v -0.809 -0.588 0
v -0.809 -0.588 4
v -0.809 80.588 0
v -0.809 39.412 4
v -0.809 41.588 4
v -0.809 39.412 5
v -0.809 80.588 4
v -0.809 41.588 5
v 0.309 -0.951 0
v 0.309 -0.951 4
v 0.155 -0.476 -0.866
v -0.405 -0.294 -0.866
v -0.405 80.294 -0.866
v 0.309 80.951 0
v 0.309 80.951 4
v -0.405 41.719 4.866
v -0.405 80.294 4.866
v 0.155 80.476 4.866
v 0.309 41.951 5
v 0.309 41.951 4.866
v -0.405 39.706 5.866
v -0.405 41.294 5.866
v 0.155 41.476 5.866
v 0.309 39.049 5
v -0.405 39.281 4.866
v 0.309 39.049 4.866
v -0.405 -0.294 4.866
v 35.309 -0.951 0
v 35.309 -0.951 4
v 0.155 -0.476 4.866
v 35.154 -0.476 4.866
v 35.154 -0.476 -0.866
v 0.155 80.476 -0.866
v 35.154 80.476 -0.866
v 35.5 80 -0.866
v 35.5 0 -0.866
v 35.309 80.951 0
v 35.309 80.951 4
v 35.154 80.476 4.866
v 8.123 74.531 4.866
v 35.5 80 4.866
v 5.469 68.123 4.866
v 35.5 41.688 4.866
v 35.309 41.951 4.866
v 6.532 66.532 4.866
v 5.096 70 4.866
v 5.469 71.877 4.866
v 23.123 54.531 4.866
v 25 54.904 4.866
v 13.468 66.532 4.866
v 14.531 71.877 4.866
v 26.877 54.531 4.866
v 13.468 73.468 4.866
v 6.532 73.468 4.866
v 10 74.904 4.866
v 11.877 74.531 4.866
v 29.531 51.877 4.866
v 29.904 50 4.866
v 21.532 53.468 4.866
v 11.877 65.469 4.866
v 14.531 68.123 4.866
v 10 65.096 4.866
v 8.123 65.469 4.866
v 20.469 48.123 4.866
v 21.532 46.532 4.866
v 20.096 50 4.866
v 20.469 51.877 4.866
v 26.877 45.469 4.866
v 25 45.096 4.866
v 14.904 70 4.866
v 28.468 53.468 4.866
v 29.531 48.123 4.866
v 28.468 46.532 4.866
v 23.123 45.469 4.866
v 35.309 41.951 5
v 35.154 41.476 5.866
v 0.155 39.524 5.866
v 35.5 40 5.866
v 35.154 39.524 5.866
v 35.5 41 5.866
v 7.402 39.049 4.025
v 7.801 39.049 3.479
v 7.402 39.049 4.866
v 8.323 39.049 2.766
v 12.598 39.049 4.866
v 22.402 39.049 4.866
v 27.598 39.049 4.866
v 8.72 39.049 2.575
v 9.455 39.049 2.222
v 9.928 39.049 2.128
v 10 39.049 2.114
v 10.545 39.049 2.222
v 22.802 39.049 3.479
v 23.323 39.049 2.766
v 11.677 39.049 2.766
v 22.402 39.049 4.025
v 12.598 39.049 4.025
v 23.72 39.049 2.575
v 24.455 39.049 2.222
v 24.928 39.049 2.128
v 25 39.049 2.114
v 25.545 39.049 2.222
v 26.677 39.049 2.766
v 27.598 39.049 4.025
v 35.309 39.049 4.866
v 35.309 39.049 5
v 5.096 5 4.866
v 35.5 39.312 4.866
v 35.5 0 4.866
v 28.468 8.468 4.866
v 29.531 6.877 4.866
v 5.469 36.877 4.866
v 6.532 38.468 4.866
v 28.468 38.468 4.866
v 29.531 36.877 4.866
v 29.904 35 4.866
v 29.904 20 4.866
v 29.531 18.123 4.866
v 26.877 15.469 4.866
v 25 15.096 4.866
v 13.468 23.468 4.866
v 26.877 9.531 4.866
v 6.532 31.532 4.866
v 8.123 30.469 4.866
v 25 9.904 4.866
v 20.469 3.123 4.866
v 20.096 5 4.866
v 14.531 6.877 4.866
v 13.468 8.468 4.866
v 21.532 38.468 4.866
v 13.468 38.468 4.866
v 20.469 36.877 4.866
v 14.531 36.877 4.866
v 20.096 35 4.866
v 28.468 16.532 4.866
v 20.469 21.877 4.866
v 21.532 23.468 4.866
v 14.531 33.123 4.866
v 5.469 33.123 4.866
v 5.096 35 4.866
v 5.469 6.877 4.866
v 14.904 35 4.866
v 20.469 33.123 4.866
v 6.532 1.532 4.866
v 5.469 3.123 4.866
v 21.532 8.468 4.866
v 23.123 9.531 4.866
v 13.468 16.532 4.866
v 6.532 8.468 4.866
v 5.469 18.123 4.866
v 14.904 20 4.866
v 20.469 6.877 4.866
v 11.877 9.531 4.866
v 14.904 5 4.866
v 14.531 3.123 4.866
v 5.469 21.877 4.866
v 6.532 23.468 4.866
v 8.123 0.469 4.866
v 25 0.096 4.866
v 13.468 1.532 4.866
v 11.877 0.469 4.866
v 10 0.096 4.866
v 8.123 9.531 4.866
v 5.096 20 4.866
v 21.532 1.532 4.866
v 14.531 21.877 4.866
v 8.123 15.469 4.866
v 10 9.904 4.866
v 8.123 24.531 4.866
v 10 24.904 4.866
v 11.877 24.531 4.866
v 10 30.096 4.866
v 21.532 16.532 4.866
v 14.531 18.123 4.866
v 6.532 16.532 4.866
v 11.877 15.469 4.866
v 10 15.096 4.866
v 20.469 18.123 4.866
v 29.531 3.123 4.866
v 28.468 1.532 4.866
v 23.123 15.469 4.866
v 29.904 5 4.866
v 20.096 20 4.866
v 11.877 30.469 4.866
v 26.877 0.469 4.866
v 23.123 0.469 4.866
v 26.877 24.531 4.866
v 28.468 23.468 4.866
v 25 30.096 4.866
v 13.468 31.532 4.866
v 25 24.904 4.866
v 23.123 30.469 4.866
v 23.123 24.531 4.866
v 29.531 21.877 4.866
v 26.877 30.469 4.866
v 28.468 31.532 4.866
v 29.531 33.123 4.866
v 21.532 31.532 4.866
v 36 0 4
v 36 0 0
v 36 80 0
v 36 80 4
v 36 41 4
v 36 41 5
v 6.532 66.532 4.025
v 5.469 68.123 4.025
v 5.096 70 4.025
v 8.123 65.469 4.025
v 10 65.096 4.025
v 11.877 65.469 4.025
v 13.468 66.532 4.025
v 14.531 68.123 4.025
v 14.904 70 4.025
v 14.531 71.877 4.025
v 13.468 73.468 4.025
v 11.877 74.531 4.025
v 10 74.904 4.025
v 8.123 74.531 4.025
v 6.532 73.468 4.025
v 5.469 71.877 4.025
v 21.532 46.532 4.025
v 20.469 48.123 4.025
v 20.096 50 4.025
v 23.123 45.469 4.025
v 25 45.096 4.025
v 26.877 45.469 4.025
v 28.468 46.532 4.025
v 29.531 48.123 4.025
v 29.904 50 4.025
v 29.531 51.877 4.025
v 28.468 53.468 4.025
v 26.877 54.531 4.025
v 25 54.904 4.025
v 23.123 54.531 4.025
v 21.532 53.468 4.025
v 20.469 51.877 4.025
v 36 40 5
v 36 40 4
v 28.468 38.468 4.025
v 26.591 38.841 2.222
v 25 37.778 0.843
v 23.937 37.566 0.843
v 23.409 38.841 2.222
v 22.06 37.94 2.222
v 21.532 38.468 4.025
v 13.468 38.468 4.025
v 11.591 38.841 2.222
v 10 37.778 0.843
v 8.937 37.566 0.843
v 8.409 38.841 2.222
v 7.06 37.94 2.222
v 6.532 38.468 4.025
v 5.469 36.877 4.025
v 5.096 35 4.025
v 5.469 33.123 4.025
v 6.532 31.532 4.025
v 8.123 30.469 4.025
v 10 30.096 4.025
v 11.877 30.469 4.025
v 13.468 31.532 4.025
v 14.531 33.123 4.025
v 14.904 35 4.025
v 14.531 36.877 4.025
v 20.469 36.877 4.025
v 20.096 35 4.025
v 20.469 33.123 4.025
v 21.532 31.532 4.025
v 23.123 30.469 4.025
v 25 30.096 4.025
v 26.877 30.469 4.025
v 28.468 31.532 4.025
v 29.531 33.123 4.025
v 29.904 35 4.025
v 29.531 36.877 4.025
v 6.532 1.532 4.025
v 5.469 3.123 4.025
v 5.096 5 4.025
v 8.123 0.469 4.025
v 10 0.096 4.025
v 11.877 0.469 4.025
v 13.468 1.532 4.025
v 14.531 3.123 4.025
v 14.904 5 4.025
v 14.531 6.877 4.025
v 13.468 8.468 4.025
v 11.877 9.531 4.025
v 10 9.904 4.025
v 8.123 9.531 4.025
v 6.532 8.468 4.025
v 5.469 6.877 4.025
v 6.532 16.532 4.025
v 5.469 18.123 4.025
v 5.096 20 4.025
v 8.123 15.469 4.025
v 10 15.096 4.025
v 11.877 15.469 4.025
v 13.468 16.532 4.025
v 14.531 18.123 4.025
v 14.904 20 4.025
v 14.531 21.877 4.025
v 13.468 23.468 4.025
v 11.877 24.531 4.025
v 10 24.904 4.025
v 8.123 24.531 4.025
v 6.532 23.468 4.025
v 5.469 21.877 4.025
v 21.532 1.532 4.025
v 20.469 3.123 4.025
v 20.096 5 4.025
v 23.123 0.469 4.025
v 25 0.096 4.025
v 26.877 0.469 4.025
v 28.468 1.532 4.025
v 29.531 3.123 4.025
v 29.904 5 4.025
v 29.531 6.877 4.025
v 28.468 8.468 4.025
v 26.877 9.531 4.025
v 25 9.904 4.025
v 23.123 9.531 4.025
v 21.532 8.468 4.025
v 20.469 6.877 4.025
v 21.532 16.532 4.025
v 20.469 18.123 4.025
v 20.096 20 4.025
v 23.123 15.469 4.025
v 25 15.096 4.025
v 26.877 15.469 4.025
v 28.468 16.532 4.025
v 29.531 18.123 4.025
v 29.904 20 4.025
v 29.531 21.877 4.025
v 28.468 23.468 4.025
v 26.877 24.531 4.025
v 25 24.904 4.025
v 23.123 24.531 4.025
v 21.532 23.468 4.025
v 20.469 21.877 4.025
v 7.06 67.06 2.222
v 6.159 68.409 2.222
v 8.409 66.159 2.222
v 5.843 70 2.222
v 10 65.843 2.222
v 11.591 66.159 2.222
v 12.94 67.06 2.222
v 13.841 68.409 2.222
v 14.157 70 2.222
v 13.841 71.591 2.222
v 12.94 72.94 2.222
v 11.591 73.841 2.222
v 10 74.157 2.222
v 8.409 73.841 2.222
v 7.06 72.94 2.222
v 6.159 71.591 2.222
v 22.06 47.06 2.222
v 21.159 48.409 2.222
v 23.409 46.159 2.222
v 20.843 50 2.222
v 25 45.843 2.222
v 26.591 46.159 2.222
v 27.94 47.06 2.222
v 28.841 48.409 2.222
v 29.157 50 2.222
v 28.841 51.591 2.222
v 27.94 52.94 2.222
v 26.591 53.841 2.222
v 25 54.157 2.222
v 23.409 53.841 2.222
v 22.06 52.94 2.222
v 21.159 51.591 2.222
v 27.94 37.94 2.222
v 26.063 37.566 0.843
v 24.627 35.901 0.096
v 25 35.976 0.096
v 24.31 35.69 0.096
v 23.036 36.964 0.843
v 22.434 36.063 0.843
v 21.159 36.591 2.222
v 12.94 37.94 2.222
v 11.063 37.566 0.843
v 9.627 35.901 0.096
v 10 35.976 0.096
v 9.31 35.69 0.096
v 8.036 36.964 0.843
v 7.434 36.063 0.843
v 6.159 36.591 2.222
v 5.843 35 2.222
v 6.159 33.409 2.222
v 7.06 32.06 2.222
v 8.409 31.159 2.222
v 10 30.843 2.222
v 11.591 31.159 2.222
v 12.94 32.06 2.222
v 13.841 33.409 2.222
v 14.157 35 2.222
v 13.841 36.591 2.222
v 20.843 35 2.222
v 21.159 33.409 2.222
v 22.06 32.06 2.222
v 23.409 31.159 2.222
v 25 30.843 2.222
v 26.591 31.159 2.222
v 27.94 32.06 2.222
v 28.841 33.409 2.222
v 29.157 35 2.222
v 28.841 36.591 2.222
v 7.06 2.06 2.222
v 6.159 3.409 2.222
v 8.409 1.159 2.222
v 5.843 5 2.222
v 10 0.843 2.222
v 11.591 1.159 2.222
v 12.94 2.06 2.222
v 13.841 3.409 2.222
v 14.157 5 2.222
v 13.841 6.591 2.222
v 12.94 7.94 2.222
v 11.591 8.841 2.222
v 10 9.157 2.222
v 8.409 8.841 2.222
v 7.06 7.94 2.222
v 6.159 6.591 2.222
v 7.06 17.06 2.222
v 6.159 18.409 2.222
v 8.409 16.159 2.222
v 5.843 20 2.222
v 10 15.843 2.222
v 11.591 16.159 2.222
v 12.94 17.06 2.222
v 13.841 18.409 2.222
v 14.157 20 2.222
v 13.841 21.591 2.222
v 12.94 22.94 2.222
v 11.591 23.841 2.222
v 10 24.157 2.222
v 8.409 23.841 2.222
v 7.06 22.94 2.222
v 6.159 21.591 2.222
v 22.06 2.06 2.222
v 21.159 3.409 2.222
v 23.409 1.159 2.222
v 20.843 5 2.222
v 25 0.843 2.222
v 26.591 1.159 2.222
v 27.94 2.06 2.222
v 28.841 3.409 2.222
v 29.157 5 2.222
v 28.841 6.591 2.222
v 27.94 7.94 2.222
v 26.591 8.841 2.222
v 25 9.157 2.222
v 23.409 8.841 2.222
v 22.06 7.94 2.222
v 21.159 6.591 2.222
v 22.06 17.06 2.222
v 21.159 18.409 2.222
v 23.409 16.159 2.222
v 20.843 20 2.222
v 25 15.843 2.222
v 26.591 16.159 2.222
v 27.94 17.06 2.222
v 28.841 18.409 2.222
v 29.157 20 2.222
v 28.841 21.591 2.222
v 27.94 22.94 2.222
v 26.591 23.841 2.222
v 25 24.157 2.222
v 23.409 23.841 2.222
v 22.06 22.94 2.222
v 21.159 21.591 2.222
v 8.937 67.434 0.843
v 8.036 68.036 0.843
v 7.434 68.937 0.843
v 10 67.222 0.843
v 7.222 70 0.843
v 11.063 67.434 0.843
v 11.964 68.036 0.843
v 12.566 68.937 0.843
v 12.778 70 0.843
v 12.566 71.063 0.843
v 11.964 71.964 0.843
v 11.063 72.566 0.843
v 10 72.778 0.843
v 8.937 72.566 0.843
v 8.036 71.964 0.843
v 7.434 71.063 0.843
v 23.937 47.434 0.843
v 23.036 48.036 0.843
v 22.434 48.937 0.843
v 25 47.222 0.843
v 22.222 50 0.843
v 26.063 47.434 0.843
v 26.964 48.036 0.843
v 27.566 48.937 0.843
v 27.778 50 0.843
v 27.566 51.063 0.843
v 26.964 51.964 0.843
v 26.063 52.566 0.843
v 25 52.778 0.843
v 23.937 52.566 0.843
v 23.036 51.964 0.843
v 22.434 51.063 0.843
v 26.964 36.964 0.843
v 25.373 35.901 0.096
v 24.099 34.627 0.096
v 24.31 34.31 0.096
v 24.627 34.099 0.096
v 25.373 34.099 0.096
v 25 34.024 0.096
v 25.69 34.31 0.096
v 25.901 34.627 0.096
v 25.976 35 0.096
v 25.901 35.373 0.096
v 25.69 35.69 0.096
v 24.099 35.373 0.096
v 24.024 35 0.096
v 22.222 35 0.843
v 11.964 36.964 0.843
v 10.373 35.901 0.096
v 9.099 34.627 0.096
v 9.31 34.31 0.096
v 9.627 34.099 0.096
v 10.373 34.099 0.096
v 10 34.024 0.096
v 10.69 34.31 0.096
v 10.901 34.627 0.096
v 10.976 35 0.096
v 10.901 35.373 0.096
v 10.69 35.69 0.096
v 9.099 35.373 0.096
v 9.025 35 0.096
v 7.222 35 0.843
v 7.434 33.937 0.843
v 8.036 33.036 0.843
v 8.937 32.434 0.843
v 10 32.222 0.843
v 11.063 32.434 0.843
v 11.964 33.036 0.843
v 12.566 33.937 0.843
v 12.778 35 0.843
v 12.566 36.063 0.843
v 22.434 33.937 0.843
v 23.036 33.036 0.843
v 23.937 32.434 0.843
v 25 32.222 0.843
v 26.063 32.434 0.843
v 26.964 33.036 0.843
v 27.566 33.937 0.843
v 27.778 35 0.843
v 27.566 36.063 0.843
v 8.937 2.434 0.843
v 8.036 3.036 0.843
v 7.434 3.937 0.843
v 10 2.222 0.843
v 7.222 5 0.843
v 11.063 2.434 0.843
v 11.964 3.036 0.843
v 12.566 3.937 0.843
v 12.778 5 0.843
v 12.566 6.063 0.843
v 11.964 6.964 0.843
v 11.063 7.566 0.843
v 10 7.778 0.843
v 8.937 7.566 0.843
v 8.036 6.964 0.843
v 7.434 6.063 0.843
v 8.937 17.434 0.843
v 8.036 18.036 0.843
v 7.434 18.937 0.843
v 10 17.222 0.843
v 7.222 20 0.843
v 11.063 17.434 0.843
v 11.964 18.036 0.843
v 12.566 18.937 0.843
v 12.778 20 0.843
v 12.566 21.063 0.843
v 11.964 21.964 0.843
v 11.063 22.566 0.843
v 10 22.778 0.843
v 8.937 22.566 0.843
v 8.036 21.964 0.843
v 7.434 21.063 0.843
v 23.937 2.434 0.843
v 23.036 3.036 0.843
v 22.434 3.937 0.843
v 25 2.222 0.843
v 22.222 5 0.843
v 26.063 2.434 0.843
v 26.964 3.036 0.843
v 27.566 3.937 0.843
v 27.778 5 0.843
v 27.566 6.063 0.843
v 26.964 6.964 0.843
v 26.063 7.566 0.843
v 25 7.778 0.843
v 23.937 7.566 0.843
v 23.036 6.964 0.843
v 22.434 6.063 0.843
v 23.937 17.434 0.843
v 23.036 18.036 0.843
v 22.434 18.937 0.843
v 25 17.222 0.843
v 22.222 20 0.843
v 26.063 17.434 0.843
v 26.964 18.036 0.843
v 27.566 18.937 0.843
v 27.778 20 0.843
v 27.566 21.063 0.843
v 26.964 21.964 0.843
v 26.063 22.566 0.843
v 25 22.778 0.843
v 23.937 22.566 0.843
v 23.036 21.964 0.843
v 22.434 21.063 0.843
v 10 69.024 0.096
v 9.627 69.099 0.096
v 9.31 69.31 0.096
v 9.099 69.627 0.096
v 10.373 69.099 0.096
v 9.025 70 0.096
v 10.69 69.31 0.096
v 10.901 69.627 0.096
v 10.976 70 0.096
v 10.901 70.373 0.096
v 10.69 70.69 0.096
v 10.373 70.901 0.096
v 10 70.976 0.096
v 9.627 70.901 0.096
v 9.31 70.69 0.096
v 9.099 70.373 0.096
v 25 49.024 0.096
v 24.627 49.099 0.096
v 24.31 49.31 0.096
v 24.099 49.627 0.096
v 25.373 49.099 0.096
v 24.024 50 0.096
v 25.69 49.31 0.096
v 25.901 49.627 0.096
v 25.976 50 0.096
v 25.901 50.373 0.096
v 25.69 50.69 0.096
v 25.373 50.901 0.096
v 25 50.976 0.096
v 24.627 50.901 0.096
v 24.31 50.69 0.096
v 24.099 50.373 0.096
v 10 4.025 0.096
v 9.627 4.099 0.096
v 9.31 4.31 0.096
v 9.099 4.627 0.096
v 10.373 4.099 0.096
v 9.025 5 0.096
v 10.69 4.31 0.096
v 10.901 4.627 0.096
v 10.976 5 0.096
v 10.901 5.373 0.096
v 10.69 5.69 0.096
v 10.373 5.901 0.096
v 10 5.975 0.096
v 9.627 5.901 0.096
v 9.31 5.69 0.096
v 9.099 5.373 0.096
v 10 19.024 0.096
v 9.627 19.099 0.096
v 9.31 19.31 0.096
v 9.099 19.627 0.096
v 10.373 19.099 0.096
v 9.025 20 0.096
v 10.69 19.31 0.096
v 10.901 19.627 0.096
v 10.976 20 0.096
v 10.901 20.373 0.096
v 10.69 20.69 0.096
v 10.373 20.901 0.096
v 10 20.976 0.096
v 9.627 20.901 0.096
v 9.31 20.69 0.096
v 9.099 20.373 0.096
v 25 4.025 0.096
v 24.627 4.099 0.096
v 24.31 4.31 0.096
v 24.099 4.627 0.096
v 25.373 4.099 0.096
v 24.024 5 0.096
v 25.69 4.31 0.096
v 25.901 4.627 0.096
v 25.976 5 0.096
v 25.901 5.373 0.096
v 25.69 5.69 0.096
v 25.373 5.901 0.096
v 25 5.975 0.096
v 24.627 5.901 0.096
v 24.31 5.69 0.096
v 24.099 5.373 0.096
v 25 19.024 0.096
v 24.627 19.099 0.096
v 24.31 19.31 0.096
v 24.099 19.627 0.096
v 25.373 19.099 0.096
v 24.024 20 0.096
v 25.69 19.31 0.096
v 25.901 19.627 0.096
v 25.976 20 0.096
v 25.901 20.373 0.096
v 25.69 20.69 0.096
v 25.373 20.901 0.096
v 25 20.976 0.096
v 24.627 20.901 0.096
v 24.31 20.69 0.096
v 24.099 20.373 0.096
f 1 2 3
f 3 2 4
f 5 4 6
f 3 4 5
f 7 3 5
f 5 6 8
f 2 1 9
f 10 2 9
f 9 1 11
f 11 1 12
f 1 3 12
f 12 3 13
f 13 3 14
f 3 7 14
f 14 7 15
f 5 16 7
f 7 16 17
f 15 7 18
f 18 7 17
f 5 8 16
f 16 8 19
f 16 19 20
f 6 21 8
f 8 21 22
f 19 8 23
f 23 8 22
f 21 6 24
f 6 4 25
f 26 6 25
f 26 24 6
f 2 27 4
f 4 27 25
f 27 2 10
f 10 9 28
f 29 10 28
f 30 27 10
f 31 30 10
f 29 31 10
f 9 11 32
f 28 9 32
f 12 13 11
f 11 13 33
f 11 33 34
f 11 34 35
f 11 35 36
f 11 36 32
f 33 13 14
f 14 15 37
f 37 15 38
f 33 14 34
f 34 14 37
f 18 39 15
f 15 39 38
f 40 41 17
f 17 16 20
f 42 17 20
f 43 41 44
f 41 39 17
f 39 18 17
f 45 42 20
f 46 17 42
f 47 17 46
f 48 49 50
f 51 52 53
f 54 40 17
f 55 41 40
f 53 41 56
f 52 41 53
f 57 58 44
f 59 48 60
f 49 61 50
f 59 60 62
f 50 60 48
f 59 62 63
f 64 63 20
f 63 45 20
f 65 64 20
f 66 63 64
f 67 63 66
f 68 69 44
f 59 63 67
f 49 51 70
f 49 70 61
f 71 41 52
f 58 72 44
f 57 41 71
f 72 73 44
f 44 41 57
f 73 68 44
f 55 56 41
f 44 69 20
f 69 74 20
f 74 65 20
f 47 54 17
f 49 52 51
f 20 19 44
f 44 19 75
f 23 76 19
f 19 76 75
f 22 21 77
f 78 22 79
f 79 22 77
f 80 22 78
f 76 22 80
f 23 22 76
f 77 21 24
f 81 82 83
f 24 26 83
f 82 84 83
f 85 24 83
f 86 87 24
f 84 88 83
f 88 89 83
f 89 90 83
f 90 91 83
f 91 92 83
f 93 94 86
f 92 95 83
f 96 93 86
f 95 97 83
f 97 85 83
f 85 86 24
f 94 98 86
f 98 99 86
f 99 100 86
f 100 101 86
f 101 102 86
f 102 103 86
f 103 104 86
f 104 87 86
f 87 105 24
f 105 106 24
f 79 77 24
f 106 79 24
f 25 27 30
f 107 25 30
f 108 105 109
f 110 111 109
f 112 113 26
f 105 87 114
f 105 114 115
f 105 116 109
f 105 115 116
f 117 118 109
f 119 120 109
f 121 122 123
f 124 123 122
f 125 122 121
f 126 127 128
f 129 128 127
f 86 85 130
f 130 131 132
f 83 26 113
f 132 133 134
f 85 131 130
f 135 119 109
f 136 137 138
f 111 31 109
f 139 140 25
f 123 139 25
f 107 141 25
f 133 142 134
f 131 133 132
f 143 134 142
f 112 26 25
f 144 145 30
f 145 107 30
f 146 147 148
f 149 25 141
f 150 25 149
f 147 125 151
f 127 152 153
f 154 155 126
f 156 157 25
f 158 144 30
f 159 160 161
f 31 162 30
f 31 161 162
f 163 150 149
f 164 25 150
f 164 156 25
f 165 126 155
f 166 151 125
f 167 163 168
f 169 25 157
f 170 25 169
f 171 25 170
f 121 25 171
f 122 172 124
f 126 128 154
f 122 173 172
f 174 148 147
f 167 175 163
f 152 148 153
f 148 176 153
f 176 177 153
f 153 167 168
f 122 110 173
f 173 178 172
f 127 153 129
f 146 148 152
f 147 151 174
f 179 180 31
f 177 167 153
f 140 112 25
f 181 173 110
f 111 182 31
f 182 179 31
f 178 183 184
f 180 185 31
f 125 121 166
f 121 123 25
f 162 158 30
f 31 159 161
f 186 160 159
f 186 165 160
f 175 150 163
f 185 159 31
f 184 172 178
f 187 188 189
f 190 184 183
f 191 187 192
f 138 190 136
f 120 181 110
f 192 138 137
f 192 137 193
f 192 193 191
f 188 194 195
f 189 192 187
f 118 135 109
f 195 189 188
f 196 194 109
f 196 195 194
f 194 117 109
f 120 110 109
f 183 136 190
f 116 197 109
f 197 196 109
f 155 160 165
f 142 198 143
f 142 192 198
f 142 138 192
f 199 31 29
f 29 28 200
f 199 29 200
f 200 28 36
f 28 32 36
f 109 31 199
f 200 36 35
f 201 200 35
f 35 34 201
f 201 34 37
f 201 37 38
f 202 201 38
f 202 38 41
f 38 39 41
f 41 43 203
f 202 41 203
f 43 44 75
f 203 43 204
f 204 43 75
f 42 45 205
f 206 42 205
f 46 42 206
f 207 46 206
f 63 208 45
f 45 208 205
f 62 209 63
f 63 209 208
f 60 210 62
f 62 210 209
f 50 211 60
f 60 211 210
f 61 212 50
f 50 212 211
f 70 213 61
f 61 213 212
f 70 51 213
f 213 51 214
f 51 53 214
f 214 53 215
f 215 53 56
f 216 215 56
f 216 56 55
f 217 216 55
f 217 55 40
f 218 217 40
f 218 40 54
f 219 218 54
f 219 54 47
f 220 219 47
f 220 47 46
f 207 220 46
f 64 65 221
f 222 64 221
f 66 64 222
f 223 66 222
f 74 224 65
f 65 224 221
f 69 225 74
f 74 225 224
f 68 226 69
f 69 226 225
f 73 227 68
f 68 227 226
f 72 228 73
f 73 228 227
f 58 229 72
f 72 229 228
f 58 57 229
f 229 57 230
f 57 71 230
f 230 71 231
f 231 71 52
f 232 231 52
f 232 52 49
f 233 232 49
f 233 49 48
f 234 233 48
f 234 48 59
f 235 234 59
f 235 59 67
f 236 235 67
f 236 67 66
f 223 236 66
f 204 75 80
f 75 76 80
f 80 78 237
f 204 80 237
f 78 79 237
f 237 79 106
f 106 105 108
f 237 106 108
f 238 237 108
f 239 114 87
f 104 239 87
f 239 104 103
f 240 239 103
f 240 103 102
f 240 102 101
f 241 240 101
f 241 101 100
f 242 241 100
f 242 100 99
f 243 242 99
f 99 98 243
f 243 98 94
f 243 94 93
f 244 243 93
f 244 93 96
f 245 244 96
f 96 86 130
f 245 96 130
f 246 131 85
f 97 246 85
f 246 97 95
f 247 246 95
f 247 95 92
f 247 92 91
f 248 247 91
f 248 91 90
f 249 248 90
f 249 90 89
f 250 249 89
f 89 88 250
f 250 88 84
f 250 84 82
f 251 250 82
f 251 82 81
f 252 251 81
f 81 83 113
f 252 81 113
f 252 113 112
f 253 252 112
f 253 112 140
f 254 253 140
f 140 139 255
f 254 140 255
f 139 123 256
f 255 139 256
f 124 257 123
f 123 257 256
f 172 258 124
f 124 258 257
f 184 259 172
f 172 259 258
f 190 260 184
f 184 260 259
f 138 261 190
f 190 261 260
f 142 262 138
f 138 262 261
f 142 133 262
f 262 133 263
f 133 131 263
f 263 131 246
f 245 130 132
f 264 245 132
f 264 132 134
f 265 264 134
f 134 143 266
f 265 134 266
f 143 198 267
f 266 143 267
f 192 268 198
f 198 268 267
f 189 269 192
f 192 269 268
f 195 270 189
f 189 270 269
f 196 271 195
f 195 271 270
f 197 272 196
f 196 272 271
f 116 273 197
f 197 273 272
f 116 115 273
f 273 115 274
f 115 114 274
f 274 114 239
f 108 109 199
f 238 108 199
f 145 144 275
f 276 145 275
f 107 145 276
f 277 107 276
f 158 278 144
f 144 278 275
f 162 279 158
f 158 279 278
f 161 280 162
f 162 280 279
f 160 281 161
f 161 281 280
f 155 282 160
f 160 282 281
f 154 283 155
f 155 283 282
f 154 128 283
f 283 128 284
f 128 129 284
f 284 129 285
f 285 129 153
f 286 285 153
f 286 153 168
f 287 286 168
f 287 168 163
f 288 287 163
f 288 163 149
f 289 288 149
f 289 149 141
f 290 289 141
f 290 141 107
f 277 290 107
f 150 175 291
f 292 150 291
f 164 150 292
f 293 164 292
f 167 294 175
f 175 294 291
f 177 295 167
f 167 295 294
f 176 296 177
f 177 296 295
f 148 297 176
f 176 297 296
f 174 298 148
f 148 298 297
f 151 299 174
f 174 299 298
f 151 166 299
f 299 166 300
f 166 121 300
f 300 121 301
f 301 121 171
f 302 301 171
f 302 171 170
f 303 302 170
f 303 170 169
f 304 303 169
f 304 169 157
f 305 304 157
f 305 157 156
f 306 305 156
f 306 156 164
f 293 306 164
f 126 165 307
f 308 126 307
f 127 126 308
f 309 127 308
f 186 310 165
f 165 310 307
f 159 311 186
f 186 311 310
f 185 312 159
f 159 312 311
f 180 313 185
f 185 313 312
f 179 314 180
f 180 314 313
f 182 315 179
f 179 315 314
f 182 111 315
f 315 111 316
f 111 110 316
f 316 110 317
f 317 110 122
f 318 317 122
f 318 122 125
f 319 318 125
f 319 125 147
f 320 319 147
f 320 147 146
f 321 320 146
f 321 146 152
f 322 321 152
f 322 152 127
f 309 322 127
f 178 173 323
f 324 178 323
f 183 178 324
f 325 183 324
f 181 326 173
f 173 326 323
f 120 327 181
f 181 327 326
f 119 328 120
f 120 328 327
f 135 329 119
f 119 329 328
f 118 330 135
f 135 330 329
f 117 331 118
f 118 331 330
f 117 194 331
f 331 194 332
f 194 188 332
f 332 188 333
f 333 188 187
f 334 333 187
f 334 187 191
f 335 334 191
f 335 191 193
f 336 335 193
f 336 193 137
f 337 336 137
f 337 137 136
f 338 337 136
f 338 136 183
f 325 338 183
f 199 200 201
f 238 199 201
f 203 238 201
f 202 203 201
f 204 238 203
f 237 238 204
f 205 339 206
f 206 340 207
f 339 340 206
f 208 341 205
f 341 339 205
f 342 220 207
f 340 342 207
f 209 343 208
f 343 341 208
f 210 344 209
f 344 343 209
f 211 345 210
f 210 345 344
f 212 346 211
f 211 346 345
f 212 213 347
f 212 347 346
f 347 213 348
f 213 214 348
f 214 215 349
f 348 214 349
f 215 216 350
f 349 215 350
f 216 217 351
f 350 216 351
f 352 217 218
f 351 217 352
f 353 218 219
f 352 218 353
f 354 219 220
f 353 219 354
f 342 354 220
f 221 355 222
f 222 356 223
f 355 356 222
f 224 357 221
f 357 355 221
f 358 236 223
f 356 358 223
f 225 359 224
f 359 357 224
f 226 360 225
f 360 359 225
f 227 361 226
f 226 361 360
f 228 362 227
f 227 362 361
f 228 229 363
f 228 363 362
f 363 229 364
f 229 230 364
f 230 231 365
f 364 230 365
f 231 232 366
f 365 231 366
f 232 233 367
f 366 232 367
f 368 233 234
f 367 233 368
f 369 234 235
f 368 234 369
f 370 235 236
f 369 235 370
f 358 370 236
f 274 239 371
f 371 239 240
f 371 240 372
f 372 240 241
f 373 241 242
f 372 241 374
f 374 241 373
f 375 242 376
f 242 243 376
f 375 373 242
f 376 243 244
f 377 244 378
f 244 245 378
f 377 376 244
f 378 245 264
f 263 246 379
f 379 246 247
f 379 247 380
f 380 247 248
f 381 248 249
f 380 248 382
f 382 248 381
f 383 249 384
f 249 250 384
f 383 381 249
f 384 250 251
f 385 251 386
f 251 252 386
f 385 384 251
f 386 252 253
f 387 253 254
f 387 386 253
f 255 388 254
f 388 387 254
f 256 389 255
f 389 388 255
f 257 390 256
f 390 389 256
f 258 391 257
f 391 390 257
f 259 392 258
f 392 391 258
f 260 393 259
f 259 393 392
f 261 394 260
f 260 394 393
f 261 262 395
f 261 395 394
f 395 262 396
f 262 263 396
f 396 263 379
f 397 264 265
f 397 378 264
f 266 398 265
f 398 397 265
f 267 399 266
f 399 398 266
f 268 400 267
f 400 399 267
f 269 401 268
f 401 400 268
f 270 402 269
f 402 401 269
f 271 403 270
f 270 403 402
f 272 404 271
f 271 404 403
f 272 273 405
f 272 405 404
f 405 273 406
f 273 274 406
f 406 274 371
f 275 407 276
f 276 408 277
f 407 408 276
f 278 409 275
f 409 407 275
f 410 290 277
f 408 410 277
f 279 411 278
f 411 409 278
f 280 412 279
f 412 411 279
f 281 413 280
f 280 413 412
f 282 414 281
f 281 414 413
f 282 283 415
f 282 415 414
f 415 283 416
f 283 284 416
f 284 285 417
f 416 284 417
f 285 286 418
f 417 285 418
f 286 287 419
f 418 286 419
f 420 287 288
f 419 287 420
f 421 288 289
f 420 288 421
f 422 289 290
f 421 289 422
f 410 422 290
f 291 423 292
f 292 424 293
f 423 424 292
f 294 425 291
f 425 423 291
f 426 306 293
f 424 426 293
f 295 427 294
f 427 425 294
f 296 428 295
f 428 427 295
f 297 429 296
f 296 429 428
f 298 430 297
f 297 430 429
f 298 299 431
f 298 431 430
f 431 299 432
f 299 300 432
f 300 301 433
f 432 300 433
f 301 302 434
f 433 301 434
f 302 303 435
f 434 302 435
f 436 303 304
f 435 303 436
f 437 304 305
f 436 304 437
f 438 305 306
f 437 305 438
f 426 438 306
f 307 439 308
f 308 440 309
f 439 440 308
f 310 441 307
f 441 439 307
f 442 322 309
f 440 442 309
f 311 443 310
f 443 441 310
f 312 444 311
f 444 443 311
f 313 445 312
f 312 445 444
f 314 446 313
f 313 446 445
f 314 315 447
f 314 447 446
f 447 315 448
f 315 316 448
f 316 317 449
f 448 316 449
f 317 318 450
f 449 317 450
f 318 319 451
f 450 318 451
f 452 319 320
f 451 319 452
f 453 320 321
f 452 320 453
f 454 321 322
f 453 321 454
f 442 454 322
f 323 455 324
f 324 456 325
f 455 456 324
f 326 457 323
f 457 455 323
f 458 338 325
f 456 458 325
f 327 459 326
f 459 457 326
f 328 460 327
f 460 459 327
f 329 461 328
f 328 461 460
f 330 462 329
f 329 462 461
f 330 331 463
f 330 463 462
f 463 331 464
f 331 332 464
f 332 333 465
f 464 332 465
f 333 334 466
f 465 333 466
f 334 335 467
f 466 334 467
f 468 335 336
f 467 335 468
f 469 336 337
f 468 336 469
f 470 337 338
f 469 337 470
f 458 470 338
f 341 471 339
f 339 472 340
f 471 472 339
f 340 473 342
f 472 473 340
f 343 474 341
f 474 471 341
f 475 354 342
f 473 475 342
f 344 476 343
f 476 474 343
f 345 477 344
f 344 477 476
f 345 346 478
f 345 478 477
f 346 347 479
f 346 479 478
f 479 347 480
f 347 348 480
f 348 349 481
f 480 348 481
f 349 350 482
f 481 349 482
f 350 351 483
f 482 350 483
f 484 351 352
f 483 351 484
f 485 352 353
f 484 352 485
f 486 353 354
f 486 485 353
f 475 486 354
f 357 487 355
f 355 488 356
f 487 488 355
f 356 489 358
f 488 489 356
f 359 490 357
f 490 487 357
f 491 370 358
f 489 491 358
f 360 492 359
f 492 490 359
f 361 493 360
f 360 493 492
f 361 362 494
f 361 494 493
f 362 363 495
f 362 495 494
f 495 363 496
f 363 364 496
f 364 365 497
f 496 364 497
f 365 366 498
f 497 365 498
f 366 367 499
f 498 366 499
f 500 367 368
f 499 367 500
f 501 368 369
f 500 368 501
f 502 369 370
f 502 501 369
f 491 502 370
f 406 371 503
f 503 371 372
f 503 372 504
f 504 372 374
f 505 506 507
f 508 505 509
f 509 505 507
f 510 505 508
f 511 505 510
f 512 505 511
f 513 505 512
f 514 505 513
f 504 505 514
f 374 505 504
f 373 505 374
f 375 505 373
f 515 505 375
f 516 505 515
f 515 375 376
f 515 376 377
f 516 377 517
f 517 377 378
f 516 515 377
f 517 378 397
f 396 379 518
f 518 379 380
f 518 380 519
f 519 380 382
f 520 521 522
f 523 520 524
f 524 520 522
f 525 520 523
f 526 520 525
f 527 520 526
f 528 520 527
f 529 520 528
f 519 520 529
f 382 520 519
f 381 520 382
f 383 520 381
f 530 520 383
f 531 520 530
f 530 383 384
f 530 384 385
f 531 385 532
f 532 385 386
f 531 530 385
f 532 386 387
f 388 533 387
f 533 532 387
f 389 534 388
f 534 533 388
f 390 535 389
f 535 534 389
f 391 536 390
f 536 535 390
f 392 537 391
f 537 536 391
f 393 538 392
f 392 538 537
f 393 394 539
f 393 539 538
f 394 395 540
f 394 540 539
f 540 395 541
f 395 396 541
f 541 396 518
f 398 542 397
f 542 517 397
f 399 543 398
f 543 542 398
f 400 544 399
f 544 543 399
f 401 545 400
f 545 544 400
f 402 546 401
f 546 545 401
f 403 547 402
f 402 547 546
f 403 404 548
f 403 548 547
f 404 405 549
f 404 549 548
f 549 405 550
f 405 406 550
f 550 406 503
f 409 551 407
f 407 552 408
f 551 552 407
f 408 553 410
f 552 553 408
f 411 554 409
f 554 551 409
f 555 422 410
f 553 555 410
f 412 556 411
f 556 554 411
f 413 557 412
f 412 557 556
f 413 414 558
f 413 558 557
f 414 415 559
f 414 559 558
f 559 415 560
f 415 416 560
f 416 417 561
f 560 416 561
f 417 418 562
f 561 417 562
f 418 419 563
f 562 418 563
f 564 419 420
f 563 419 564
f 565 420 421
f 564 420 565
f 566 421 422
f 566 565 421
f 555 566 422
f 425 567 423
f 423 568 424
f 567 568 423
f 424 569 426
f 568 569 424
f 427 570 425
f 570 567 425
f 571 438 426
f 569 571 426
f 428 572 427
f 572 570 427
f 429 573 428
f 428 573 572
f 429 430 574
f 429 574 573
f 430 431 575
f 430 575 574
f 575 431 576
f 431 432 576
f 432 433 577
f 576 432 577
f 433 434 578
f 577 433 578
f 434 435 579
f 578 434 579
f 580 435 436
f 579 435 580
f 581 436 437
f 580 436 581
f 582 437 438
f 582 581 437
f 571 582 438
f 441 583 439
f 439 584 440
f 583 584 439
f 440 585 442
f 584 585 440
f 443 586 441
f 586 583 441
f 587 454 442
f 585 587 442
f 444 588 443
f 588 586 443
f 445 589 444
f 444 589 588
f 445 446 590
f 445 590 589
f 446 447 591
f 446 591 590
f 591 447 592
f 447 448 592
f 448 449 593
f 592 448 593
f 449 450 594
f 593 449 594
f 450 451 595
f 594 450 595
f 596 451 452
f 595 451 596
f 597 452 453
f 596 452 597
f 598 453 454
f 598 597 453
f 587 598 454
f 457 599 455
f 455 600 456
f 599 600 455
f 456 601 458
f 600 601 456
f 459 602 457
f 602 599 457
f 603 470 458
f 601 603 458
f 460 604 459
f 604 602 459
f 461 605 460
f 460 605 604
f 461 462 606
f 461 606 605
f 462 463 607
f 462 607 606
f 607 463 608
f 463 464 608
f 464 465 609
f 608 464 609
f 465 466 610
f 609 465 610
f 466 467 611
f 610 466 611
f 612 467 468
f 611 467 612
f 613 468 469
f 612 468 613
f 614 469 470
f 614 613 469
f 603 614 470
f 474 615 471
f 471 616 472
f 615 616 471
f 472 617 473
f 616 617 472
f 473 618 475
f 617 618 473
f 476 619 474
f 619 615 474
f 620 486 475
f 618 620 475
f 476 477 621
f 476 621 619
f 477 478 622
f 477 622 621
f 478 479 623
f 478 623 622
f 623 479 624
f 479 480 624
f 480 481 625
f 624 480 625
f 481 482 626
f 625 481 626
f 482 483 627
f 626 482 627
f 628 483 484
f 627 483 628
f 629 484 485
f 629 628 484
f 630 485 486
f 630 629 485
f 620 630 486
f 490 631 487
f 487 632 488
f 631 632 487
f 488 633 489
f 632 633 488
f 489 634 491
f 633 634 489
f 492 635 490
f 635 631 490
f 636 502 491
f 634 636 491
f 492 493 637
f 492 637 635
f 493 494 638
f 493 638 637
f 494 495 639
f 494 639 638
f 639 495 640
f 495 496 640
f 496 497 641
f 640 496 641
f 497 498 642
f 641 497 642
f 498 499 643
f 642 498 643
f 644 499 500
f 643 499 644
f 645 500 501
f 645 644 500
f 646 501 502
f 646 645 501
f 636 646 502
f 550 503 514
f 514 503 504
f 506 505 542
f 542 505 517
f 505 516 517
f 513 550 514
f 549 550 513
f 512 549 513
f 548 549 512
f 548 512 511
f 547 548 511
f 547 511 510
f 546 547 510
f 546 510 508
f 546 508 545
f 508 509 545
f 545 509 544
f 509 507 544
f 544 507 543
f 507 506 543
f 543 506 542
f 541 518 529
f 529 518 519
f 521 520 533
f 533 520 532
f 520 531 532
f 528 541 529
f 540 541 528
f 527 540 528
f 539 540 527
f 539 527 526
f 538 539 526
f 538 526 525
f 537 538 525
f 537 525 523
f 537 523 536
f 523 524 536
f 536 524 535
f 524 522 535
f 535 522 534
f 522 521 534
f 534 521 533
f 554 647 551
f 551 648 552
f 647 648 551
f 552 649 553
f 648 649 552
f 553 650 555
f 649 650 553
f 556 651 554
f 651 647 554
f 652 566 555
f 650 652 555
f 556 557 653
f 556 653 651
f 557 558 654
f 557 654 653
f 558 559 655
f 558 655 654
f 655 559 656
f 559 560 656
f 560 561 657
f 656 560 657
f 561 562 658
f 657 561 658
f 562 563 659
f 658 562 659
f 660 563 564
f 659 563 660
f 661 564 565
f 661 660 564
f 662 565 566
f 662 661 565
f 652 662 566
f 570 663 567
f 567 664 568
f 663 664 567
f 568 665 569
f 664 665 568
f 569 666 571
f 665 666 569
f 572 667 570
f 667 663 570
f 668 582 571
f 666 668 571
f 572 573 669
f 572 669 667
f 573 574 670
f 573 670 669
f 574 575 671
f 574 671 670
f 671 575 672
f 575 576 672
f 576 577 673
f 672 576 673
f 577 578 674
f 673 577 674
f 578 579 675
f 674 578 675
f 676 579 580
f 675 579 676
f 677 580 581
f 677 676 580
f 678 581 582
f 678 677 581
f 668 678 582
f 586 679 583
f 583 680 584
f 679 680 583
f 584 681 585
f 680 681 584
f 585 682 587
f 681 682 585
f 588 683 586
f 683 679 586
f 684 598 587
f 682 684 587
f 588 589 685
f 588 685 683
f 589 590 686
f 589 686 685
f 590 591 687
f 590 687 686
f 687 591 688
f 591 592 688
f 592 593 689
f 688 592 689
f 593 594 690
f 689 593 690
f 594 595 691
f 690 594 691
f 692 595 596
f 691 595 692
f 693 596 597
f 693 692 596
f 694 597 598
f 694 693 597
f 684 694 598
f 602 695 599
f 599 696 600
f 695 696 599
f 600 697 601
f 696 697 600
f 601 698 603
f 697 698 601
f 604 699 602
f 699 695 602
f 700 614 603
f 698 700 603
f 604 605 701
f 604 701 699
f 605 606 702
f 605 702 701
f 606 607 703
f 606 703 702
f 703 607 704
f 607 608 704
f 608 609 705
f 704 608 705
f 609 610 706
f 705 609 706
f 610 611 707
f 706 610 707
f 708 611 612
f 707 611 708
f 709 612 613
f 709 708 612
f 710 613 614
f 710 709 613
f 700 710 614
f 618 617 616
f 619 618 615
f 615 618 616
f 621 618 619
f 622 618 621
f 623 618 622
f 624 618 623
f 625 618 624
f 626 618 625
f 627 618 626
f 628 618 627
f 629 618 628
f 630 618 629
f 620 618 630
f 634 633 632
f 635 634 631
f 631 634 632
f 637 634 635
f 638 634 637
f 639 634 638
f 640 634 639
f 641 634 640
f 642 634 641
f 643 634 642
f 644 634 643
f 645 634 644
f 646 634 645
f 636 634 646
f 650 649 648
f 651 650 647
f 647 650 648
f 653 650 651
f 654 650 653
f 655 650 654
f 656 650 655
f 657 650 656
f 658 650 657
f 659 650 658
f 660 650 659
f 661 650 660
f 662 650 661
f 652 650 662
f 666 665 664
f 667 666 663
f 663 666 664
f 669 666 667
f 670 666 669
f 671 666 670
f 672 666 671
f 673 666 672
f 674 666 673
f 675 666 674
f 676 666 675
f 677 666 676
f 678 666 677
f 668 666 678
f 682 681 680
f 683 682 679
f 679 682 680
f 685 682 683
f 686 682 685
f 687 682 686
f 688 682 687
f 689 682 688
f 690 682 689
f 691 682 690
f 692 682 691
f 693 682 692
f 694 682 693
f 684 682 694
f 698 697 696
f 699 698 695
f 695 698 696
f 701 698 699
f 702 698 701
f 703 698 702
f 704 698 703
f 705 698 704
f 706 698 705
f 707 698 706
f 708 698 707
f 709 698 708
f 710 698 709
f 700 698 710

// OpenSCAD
// Loguncov Maxim 13.12.13


//$fn=128;


translate([0,40,0])
minkowski()
{cube([35,1,5]);
sphere(1);
}

difference() {

//основа
minkowski()
{cube([35,80,4]);
sphere(1);
}

//отверстия
translate([10,5,5])sphere(5);
translate([25,5,5])sphere(5);
translate([10,20,5])sphere(5);
translate([25,20,5])sphere(5);
translate([10,35,5])sphere(5);
translate([25,35,5])sphere(5);

translate([10,70,5])sphere(5);
translate([25,50,5])sphere(5);



}
